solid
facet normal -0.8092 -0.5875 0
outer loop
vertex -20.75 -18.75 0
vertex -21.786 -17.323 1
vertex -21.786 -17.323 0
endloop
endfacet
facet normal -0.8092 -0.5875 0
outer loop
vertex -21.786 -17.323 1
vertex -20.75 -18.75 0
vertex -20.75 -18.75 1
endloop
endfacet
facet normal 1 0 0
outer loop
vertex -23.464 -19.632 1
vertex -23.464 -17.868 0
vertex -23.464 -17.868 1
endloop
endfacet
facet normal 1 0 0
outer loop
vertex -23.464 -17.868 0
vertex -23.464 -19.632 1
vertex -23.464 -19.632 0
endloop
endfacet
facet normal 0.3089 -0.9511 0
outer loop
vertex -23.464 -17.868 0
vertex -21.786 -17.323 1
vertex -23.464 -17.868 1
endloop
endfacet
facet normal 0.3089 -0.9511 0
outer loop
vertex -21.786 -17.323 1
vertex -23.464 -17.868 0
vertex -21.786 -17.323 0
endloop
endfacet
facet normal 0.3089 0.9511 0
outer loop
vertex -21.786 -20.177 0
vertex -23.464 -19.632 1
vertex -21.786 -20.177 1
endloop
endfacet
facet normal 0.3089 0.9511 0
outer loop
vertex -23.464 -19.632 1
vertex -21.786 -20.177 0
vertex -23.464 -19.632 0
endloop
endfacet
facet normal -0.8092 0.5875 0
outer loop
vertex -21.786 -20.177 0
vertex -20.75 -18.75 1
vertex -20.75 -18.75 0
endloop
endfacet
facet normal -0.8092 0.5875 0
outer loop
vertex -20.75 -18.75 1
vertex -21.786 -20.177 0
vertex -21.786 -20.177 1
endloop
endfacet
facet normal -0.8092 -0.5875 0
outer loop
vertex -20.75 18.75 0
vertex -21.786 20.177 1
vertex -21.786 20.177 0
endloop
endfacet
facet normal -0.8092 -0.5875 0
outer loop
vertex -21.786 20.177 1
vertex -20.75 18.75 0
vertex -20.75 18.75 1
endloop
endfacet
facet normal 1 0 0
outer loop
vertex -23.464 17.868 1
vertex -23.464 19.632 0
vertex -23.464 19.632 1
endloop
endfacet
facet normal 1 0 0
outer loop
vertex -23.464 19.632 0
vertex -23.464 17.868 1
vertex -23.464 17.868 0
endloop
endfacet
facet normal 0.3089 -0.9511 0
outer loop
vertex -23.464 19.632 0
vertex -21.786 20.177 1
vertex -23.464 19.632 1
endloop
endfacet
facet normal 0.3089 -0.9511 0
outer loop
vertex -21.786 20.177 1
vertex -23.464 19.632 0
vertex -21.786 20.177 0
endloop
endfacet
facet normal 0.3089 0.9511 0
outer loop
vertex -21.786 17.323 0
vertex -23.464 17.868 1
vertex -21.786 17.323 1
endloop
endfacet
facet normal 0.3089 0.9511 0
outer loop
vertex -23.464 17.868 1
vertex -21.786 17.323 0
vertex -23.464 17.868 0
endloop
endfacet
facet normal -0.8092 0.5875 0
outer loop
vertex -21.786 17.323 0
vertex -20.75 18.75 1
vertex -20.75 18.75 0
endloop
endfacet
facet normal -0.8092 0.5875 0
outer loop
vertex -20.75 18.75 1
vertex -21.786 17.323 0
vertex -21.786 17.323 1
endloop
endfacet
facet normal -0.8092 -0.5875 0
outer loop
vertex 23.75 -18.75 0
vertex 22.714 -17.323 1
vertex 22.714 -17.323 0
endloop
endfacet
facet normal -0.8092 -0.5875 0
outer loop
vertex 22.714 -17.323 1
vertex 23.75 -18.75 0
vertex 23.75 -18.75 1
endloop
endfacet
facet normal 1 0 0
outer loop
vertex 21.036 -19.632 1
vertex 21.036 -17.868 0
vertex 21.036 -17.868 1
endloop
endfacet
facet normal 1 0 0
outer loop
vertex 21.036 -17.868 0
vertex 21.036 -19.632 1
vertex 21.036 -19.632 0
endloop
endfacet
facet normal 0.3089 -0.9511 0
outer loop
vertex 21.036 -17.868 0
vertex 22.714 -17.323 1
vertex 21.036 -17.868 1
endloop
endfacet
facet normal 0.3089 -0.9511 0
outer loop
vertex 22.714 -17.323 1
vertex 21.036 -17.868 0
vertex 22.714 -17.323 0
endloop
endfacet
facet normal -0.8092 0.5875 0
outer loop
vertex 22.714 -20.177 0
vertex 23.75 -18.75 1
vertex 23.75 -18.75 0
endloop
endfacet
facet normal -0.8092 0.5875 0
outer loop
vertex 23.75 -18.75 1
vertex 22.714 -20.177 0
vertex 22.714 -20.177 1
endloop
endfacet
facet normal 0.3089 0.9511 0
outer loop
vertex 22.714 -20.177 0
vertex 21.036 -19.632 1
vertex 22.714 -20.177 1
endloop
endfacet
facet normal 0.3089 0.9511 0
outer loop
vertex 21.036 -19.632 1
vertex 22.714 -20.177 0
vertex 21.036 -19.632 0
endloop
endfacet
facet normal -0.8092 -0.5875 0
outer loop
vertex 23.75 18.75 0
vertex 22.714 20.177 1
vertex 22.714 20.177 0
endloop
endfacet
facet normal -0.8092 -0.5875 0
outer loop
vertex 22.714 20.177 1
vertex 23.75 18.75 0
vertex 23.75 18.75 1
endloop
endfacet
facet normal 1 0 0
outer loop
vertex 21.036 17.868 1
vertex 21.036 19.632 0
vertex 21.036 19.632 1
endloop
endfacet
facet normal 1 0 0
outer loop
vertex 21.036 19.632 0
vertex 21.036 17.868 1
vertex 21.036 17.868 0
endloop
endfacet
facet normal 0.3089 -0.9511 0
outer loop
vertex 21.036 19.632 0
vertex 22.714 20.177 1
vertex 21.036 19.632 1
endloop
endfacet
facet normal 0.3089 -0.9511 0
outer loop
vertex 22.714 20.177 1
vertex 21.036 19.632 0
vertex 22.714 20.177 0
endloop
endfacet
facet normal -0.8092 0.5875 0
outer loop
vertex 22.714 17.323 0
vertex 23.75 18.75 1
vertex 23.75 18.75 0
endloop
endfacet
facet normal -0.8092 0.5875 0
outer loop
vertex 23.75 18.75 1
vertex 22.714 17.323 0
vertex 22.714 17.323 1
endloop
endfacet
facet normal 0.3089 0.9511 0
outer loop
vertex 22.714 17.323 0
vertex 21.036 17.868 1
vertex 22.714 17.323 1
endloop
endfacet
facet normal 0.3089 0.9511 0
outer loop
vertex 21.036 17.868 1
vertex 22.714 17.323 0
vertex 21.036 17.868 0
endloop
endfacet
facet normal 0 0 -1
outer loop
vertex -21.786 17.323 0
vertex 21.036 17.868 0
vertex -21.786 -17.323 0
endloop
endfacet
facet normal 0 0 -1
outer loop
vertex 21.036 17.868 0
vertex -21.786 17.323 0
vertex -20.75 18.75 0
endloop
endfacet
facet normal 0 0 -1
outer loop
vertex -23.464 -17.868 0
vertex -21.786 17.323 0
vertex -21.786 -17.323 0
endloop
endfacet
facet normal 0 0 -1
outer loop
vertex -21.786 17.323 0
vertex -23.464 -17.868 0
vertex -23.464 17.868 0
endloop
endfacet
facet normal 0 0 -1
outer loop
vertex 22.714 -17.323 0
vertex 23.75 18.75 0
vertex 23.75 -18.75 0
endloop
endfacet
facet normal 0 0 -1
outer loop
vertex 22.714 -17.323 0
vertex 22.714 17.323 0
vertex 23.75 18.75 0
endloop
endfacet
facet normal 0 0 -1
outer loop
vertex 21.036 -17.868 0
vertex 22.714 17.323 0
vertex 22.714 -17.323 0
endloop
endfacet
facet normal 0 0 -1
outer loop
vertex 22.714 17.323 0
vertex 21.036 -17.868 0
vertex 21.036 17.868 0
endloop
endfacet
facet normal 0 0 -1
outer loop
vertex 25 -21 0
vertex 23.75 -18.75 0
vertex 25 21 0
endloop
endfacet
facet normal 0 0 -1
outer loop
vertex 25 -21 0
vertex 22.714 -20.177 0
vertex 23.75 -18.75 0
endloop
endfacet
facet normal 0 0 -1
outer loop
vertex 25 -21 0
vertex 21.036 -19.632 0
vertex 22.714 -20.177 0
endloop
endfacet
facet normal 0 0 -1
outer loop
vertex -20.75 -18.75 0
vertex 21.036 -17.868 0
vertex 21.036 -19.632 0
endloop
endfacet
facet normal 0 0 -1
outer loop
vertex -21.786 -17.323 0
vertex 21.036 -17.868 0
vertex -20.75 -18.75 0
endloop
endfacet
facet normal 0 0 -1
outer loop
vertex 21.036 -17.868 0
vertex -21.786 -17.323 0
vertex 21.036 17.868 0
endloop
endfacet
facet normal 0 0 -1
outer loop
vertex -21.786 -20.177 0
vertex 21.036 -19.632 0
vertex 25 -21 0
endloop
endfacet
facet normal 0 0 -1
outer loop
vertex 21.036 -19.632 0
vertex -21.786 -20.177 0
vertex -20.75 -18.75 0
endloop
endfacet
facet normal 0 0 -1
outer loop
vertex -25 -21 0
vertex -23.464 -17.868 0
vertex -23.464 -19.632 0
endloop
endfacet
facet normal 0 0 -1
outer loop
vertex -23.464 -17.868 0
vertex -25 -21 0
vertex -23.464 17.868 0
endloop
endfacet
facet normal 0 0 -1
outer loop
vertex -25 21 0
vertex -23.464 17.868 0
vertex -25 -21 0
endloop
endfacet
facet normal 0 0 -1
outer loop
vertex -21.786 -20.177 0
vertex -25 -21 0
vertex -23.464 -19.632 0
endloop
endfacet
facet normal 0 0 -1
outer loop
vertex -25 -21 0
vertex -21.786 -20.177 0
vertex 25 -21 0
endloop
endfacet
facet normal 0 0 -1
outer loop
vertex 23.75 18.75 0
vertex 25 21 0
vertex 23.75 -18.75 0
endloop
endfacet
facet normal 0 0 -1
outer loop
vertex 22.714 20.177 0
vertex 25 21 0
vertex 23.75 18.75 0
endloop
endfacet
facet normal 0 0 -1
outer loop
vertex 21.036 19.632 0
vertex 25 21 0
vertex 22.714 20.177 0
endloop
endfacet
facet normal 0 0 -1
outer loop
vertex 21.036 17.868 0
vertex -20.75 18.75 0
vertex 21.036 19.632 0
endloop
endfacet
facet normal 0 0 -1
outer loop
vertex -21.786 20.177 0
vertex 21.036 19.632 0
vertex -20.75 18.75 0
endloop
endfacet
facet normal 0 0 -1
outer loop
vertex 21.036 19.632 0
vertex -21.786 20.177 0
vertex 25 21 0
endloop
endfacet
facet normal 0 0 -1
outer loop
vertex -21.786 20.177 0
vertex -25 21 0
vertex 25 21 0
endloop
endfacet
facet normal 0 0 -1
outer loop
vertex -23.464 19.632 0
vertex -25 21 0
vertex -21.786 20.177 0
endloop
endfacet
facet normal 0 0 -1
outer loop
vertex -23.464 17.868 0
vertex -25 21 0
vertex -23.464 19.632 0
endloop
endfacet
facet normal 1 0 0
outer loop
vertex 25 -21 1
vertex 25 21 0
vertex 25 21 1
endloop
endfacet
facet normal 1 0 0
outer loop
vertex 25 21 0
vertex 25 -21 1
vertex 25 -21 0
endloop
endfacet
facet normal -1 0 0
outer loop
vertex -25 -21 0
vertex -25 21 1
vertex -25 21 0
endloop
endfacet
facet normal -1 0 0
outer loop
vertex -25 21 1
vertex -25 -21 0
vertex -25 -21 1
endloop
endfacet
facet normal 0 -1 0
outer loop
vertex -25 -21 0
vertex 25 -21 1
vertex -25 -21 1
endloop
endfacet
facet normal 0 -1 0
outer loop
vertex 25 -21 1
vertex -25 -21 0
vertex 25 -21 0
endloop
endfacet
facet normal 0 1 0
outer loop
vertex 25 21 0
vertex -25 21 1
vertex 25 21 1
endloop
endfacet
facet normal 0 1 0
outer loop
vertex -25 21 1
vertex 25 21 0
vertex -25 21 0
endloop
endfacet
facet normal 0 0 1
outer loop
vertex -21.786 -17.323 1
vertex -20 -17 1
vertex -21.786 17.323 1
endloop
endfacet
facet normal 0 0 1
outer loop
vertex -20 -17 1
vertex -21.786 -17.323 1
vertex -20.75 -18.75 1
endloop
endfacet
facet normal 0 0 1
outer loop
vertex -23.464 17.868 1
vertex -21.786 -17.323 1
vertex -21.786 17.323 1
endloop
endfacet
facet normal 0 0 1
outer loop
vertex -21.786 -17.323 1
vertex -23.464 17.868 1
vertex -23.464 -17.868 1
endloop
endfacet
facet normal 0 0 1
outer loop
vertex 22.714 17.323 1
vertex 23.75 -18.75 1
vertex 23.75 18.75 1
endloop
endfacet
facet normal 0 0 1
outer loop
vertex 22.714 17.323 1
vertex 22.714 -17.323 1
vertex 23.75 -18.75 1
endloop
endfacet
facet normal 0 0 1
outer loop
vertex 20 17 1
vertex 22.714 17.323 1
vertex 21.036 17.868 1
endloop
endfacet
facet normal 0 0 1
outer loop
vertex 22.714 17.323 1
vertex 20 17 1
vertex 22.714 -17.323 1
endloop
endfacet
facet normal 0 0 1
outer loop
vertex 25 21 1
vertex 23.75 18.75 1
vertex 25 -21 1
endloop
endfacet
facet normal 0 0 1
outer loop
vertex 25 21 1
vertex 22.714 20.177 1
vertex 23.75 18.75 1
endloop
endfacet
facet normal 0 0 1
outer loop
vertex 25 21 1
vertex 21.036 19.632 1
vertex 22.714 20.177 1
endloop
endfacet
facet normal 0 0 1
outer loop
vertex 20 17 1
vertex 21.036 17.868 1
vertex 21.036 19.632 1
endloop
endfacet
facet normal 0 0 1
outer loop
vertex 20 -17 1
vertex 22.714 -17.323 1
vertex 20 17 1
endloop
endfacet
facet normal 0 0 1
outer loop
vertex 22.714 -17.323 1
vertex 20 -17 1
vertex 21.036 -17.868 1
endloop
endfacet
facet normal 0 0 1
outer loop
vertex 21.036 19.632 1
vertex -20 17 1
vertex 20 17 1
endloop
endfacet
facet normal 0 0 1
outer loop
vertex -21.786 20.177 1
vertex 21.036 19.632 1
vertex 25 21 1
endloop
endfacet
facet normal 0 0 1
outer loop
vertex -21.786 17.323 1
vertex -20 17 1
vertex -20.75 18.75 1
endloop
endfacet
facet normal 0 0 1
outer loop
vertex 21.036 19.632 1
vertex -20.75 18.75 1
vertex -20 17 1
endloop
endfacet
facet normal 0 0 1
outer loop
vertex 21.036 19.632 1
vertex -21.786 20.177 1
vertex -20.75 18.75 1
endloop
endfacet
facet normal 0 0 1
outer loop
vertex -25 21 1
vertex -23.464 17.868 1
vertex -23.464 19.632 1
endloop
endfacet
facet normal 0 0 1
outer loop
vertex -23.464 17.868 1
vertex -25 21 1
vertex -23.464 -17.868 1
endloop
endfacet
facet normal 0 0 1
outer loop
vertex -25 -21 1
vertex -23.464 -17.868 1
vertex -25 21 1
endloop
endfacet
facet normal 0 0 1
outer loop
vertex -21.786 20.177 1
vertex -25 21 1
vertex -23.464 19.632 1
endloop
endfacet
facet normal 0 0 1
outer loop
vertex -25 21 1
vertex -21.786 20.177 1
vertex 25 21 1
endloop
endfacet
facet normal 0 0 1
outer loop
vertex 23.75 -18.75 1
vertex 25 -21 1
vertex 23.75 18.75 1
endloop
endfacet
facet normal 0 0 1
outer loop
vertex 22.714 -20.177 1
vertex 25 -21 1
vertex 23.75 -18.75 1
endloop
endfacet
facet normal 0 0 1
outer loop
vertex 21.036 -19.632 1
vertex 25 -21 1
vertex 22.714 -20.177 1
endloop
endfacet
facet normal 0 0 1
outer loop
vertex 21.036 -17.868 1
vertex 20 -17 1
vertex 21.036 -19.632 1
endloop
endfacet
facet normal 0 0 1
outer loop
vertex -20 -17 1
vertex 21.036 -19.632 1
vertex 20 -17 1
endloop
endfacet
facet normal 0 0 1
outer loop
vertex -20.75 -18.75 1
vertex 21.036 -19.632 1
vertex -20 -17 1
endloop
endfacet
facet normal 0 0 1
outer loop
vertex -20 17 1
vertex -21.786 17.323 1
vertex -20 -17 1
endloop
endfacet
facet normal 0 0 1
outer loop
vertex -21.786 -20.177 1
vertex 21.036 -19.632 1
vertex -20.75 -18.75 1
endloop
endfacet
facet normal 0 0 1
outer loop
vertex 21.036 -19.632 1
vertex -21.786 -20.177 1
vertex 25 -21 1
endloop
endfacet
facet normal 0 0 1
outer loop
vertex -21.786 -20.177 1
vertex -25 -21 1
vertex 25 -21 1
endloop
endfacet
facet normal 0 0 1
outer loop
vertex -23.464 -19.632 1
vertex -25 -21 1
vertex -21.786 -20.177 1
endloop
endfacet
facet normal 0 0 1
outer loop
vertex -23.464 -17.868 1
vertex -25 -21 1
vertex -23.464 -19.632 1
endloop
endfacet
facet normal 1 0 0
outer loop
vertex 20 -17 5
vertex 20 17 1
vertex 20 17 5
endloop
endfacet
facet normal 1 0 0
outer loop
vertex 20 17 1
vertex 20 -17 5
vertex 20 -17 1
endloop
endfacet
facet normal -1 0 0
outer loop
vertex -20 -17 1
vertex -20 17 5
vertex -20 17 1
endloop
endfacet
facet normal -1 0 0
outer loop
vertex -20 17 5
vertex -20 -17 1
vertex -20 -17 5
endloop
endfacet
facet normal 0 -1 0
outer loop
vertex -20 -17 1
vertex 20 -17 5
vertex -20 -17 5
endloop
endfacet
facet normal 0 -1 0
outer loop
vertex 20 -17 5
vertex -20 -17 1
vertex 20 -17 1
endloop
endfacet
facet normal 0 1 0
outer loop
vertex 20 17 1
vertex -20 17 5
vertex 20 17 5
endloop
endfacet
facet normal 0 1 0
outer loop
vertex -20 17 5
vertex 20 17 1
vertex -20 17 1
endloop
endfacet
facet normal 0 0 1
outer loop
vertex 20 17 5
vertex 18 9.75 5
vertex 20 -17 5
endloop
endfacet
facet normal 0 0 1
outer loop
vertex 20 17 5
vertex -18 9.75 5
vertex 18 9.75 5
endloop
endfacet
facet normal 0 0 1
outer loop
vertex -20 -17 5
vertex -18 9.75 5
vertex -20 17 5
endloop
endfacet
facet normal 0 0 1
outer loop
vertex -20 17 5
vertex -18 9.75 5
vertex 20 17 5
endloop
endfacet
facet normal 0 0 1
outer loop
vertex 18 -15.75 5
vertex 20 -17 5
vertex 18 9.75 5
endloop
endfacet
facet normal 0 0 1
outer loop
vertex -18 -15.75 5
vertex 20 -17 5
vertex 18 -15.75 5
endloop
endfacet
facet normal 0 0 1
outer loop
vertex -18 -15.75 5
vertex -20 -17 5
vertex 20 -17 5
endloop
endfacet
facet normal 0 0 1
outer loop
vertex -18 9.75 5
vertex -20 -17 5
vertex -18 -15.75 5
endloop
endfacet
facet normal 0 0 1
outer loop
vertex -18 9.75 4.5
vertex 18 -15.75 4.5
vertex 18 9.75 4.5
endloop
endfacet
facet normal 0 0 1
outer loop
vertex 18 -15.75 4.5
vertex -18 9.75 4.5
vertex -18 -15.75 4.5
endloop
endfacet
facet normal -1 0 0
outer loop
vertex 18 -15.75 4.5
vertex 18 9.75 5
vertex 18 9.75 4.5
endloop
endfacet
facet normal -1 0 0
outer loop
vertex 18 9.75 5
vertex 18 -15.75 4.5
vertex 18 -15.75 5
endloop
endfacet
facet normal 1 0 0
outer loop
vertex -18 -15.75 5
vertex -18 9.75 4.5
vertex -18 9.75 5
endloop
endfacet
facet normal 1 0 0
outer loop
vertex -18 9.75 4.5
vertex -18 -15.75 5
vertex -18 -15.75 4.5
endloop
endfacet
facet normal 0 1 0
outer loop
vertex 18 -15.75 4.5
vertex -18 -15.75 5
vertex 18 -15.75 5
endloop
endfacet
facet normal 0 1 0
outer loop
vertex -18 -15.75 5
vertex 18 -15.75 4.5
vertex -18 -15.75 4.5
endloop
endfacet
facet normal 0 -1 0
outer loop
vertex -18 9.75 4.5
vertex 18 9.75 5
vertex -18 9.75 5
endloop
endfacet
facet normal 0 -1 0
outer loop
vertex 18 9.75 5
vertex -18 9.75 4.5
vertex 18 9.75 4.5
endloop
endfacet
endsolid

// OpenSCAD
module nokia_hole() {
    cylinder(6, 1.5, 1.5, center=false);
} 

module nokia_holes() {
    union() {
        translate([-44.5 / 2.0, -37.5 / 2.0, -2]) nokia_hole();
        translate([-44.5 / 2.0, 37.5 / 2.0, -2]) nokia_hole();
        translate([44.5 / 2.0, -37.5 / 2.0, -2]) nokia_hole();
        translate([44.5 / 2.0, 37.5 / 2.0, -2]) nokia_hole();
    }
}

module nokia_pcb() {
    color("Lime")
        linear_extrude(1, center=false)
            square([50, 42], center=true);
}
    
module nokia_board() {
    difference() {
        nokia_pcb();
        nokia_holes();
    }
}

module nokia_lcd_case() {
    color("LightCyan")
        linear_extrude(4, center=false)
            square([40, 34], center=true);
}

module nokia_lcd_inset() {
    linear_extrude(2, center=false)
        square([36, 25.5], center=true);
}

module nokia_display() {
    nokia_board();
    difference() {
        translate([0, 0, 1]) nokia_lcd_case();
        translate([0, -3, 4.5]) nokia_lcd_inset();
    }
}

nokia_display();
